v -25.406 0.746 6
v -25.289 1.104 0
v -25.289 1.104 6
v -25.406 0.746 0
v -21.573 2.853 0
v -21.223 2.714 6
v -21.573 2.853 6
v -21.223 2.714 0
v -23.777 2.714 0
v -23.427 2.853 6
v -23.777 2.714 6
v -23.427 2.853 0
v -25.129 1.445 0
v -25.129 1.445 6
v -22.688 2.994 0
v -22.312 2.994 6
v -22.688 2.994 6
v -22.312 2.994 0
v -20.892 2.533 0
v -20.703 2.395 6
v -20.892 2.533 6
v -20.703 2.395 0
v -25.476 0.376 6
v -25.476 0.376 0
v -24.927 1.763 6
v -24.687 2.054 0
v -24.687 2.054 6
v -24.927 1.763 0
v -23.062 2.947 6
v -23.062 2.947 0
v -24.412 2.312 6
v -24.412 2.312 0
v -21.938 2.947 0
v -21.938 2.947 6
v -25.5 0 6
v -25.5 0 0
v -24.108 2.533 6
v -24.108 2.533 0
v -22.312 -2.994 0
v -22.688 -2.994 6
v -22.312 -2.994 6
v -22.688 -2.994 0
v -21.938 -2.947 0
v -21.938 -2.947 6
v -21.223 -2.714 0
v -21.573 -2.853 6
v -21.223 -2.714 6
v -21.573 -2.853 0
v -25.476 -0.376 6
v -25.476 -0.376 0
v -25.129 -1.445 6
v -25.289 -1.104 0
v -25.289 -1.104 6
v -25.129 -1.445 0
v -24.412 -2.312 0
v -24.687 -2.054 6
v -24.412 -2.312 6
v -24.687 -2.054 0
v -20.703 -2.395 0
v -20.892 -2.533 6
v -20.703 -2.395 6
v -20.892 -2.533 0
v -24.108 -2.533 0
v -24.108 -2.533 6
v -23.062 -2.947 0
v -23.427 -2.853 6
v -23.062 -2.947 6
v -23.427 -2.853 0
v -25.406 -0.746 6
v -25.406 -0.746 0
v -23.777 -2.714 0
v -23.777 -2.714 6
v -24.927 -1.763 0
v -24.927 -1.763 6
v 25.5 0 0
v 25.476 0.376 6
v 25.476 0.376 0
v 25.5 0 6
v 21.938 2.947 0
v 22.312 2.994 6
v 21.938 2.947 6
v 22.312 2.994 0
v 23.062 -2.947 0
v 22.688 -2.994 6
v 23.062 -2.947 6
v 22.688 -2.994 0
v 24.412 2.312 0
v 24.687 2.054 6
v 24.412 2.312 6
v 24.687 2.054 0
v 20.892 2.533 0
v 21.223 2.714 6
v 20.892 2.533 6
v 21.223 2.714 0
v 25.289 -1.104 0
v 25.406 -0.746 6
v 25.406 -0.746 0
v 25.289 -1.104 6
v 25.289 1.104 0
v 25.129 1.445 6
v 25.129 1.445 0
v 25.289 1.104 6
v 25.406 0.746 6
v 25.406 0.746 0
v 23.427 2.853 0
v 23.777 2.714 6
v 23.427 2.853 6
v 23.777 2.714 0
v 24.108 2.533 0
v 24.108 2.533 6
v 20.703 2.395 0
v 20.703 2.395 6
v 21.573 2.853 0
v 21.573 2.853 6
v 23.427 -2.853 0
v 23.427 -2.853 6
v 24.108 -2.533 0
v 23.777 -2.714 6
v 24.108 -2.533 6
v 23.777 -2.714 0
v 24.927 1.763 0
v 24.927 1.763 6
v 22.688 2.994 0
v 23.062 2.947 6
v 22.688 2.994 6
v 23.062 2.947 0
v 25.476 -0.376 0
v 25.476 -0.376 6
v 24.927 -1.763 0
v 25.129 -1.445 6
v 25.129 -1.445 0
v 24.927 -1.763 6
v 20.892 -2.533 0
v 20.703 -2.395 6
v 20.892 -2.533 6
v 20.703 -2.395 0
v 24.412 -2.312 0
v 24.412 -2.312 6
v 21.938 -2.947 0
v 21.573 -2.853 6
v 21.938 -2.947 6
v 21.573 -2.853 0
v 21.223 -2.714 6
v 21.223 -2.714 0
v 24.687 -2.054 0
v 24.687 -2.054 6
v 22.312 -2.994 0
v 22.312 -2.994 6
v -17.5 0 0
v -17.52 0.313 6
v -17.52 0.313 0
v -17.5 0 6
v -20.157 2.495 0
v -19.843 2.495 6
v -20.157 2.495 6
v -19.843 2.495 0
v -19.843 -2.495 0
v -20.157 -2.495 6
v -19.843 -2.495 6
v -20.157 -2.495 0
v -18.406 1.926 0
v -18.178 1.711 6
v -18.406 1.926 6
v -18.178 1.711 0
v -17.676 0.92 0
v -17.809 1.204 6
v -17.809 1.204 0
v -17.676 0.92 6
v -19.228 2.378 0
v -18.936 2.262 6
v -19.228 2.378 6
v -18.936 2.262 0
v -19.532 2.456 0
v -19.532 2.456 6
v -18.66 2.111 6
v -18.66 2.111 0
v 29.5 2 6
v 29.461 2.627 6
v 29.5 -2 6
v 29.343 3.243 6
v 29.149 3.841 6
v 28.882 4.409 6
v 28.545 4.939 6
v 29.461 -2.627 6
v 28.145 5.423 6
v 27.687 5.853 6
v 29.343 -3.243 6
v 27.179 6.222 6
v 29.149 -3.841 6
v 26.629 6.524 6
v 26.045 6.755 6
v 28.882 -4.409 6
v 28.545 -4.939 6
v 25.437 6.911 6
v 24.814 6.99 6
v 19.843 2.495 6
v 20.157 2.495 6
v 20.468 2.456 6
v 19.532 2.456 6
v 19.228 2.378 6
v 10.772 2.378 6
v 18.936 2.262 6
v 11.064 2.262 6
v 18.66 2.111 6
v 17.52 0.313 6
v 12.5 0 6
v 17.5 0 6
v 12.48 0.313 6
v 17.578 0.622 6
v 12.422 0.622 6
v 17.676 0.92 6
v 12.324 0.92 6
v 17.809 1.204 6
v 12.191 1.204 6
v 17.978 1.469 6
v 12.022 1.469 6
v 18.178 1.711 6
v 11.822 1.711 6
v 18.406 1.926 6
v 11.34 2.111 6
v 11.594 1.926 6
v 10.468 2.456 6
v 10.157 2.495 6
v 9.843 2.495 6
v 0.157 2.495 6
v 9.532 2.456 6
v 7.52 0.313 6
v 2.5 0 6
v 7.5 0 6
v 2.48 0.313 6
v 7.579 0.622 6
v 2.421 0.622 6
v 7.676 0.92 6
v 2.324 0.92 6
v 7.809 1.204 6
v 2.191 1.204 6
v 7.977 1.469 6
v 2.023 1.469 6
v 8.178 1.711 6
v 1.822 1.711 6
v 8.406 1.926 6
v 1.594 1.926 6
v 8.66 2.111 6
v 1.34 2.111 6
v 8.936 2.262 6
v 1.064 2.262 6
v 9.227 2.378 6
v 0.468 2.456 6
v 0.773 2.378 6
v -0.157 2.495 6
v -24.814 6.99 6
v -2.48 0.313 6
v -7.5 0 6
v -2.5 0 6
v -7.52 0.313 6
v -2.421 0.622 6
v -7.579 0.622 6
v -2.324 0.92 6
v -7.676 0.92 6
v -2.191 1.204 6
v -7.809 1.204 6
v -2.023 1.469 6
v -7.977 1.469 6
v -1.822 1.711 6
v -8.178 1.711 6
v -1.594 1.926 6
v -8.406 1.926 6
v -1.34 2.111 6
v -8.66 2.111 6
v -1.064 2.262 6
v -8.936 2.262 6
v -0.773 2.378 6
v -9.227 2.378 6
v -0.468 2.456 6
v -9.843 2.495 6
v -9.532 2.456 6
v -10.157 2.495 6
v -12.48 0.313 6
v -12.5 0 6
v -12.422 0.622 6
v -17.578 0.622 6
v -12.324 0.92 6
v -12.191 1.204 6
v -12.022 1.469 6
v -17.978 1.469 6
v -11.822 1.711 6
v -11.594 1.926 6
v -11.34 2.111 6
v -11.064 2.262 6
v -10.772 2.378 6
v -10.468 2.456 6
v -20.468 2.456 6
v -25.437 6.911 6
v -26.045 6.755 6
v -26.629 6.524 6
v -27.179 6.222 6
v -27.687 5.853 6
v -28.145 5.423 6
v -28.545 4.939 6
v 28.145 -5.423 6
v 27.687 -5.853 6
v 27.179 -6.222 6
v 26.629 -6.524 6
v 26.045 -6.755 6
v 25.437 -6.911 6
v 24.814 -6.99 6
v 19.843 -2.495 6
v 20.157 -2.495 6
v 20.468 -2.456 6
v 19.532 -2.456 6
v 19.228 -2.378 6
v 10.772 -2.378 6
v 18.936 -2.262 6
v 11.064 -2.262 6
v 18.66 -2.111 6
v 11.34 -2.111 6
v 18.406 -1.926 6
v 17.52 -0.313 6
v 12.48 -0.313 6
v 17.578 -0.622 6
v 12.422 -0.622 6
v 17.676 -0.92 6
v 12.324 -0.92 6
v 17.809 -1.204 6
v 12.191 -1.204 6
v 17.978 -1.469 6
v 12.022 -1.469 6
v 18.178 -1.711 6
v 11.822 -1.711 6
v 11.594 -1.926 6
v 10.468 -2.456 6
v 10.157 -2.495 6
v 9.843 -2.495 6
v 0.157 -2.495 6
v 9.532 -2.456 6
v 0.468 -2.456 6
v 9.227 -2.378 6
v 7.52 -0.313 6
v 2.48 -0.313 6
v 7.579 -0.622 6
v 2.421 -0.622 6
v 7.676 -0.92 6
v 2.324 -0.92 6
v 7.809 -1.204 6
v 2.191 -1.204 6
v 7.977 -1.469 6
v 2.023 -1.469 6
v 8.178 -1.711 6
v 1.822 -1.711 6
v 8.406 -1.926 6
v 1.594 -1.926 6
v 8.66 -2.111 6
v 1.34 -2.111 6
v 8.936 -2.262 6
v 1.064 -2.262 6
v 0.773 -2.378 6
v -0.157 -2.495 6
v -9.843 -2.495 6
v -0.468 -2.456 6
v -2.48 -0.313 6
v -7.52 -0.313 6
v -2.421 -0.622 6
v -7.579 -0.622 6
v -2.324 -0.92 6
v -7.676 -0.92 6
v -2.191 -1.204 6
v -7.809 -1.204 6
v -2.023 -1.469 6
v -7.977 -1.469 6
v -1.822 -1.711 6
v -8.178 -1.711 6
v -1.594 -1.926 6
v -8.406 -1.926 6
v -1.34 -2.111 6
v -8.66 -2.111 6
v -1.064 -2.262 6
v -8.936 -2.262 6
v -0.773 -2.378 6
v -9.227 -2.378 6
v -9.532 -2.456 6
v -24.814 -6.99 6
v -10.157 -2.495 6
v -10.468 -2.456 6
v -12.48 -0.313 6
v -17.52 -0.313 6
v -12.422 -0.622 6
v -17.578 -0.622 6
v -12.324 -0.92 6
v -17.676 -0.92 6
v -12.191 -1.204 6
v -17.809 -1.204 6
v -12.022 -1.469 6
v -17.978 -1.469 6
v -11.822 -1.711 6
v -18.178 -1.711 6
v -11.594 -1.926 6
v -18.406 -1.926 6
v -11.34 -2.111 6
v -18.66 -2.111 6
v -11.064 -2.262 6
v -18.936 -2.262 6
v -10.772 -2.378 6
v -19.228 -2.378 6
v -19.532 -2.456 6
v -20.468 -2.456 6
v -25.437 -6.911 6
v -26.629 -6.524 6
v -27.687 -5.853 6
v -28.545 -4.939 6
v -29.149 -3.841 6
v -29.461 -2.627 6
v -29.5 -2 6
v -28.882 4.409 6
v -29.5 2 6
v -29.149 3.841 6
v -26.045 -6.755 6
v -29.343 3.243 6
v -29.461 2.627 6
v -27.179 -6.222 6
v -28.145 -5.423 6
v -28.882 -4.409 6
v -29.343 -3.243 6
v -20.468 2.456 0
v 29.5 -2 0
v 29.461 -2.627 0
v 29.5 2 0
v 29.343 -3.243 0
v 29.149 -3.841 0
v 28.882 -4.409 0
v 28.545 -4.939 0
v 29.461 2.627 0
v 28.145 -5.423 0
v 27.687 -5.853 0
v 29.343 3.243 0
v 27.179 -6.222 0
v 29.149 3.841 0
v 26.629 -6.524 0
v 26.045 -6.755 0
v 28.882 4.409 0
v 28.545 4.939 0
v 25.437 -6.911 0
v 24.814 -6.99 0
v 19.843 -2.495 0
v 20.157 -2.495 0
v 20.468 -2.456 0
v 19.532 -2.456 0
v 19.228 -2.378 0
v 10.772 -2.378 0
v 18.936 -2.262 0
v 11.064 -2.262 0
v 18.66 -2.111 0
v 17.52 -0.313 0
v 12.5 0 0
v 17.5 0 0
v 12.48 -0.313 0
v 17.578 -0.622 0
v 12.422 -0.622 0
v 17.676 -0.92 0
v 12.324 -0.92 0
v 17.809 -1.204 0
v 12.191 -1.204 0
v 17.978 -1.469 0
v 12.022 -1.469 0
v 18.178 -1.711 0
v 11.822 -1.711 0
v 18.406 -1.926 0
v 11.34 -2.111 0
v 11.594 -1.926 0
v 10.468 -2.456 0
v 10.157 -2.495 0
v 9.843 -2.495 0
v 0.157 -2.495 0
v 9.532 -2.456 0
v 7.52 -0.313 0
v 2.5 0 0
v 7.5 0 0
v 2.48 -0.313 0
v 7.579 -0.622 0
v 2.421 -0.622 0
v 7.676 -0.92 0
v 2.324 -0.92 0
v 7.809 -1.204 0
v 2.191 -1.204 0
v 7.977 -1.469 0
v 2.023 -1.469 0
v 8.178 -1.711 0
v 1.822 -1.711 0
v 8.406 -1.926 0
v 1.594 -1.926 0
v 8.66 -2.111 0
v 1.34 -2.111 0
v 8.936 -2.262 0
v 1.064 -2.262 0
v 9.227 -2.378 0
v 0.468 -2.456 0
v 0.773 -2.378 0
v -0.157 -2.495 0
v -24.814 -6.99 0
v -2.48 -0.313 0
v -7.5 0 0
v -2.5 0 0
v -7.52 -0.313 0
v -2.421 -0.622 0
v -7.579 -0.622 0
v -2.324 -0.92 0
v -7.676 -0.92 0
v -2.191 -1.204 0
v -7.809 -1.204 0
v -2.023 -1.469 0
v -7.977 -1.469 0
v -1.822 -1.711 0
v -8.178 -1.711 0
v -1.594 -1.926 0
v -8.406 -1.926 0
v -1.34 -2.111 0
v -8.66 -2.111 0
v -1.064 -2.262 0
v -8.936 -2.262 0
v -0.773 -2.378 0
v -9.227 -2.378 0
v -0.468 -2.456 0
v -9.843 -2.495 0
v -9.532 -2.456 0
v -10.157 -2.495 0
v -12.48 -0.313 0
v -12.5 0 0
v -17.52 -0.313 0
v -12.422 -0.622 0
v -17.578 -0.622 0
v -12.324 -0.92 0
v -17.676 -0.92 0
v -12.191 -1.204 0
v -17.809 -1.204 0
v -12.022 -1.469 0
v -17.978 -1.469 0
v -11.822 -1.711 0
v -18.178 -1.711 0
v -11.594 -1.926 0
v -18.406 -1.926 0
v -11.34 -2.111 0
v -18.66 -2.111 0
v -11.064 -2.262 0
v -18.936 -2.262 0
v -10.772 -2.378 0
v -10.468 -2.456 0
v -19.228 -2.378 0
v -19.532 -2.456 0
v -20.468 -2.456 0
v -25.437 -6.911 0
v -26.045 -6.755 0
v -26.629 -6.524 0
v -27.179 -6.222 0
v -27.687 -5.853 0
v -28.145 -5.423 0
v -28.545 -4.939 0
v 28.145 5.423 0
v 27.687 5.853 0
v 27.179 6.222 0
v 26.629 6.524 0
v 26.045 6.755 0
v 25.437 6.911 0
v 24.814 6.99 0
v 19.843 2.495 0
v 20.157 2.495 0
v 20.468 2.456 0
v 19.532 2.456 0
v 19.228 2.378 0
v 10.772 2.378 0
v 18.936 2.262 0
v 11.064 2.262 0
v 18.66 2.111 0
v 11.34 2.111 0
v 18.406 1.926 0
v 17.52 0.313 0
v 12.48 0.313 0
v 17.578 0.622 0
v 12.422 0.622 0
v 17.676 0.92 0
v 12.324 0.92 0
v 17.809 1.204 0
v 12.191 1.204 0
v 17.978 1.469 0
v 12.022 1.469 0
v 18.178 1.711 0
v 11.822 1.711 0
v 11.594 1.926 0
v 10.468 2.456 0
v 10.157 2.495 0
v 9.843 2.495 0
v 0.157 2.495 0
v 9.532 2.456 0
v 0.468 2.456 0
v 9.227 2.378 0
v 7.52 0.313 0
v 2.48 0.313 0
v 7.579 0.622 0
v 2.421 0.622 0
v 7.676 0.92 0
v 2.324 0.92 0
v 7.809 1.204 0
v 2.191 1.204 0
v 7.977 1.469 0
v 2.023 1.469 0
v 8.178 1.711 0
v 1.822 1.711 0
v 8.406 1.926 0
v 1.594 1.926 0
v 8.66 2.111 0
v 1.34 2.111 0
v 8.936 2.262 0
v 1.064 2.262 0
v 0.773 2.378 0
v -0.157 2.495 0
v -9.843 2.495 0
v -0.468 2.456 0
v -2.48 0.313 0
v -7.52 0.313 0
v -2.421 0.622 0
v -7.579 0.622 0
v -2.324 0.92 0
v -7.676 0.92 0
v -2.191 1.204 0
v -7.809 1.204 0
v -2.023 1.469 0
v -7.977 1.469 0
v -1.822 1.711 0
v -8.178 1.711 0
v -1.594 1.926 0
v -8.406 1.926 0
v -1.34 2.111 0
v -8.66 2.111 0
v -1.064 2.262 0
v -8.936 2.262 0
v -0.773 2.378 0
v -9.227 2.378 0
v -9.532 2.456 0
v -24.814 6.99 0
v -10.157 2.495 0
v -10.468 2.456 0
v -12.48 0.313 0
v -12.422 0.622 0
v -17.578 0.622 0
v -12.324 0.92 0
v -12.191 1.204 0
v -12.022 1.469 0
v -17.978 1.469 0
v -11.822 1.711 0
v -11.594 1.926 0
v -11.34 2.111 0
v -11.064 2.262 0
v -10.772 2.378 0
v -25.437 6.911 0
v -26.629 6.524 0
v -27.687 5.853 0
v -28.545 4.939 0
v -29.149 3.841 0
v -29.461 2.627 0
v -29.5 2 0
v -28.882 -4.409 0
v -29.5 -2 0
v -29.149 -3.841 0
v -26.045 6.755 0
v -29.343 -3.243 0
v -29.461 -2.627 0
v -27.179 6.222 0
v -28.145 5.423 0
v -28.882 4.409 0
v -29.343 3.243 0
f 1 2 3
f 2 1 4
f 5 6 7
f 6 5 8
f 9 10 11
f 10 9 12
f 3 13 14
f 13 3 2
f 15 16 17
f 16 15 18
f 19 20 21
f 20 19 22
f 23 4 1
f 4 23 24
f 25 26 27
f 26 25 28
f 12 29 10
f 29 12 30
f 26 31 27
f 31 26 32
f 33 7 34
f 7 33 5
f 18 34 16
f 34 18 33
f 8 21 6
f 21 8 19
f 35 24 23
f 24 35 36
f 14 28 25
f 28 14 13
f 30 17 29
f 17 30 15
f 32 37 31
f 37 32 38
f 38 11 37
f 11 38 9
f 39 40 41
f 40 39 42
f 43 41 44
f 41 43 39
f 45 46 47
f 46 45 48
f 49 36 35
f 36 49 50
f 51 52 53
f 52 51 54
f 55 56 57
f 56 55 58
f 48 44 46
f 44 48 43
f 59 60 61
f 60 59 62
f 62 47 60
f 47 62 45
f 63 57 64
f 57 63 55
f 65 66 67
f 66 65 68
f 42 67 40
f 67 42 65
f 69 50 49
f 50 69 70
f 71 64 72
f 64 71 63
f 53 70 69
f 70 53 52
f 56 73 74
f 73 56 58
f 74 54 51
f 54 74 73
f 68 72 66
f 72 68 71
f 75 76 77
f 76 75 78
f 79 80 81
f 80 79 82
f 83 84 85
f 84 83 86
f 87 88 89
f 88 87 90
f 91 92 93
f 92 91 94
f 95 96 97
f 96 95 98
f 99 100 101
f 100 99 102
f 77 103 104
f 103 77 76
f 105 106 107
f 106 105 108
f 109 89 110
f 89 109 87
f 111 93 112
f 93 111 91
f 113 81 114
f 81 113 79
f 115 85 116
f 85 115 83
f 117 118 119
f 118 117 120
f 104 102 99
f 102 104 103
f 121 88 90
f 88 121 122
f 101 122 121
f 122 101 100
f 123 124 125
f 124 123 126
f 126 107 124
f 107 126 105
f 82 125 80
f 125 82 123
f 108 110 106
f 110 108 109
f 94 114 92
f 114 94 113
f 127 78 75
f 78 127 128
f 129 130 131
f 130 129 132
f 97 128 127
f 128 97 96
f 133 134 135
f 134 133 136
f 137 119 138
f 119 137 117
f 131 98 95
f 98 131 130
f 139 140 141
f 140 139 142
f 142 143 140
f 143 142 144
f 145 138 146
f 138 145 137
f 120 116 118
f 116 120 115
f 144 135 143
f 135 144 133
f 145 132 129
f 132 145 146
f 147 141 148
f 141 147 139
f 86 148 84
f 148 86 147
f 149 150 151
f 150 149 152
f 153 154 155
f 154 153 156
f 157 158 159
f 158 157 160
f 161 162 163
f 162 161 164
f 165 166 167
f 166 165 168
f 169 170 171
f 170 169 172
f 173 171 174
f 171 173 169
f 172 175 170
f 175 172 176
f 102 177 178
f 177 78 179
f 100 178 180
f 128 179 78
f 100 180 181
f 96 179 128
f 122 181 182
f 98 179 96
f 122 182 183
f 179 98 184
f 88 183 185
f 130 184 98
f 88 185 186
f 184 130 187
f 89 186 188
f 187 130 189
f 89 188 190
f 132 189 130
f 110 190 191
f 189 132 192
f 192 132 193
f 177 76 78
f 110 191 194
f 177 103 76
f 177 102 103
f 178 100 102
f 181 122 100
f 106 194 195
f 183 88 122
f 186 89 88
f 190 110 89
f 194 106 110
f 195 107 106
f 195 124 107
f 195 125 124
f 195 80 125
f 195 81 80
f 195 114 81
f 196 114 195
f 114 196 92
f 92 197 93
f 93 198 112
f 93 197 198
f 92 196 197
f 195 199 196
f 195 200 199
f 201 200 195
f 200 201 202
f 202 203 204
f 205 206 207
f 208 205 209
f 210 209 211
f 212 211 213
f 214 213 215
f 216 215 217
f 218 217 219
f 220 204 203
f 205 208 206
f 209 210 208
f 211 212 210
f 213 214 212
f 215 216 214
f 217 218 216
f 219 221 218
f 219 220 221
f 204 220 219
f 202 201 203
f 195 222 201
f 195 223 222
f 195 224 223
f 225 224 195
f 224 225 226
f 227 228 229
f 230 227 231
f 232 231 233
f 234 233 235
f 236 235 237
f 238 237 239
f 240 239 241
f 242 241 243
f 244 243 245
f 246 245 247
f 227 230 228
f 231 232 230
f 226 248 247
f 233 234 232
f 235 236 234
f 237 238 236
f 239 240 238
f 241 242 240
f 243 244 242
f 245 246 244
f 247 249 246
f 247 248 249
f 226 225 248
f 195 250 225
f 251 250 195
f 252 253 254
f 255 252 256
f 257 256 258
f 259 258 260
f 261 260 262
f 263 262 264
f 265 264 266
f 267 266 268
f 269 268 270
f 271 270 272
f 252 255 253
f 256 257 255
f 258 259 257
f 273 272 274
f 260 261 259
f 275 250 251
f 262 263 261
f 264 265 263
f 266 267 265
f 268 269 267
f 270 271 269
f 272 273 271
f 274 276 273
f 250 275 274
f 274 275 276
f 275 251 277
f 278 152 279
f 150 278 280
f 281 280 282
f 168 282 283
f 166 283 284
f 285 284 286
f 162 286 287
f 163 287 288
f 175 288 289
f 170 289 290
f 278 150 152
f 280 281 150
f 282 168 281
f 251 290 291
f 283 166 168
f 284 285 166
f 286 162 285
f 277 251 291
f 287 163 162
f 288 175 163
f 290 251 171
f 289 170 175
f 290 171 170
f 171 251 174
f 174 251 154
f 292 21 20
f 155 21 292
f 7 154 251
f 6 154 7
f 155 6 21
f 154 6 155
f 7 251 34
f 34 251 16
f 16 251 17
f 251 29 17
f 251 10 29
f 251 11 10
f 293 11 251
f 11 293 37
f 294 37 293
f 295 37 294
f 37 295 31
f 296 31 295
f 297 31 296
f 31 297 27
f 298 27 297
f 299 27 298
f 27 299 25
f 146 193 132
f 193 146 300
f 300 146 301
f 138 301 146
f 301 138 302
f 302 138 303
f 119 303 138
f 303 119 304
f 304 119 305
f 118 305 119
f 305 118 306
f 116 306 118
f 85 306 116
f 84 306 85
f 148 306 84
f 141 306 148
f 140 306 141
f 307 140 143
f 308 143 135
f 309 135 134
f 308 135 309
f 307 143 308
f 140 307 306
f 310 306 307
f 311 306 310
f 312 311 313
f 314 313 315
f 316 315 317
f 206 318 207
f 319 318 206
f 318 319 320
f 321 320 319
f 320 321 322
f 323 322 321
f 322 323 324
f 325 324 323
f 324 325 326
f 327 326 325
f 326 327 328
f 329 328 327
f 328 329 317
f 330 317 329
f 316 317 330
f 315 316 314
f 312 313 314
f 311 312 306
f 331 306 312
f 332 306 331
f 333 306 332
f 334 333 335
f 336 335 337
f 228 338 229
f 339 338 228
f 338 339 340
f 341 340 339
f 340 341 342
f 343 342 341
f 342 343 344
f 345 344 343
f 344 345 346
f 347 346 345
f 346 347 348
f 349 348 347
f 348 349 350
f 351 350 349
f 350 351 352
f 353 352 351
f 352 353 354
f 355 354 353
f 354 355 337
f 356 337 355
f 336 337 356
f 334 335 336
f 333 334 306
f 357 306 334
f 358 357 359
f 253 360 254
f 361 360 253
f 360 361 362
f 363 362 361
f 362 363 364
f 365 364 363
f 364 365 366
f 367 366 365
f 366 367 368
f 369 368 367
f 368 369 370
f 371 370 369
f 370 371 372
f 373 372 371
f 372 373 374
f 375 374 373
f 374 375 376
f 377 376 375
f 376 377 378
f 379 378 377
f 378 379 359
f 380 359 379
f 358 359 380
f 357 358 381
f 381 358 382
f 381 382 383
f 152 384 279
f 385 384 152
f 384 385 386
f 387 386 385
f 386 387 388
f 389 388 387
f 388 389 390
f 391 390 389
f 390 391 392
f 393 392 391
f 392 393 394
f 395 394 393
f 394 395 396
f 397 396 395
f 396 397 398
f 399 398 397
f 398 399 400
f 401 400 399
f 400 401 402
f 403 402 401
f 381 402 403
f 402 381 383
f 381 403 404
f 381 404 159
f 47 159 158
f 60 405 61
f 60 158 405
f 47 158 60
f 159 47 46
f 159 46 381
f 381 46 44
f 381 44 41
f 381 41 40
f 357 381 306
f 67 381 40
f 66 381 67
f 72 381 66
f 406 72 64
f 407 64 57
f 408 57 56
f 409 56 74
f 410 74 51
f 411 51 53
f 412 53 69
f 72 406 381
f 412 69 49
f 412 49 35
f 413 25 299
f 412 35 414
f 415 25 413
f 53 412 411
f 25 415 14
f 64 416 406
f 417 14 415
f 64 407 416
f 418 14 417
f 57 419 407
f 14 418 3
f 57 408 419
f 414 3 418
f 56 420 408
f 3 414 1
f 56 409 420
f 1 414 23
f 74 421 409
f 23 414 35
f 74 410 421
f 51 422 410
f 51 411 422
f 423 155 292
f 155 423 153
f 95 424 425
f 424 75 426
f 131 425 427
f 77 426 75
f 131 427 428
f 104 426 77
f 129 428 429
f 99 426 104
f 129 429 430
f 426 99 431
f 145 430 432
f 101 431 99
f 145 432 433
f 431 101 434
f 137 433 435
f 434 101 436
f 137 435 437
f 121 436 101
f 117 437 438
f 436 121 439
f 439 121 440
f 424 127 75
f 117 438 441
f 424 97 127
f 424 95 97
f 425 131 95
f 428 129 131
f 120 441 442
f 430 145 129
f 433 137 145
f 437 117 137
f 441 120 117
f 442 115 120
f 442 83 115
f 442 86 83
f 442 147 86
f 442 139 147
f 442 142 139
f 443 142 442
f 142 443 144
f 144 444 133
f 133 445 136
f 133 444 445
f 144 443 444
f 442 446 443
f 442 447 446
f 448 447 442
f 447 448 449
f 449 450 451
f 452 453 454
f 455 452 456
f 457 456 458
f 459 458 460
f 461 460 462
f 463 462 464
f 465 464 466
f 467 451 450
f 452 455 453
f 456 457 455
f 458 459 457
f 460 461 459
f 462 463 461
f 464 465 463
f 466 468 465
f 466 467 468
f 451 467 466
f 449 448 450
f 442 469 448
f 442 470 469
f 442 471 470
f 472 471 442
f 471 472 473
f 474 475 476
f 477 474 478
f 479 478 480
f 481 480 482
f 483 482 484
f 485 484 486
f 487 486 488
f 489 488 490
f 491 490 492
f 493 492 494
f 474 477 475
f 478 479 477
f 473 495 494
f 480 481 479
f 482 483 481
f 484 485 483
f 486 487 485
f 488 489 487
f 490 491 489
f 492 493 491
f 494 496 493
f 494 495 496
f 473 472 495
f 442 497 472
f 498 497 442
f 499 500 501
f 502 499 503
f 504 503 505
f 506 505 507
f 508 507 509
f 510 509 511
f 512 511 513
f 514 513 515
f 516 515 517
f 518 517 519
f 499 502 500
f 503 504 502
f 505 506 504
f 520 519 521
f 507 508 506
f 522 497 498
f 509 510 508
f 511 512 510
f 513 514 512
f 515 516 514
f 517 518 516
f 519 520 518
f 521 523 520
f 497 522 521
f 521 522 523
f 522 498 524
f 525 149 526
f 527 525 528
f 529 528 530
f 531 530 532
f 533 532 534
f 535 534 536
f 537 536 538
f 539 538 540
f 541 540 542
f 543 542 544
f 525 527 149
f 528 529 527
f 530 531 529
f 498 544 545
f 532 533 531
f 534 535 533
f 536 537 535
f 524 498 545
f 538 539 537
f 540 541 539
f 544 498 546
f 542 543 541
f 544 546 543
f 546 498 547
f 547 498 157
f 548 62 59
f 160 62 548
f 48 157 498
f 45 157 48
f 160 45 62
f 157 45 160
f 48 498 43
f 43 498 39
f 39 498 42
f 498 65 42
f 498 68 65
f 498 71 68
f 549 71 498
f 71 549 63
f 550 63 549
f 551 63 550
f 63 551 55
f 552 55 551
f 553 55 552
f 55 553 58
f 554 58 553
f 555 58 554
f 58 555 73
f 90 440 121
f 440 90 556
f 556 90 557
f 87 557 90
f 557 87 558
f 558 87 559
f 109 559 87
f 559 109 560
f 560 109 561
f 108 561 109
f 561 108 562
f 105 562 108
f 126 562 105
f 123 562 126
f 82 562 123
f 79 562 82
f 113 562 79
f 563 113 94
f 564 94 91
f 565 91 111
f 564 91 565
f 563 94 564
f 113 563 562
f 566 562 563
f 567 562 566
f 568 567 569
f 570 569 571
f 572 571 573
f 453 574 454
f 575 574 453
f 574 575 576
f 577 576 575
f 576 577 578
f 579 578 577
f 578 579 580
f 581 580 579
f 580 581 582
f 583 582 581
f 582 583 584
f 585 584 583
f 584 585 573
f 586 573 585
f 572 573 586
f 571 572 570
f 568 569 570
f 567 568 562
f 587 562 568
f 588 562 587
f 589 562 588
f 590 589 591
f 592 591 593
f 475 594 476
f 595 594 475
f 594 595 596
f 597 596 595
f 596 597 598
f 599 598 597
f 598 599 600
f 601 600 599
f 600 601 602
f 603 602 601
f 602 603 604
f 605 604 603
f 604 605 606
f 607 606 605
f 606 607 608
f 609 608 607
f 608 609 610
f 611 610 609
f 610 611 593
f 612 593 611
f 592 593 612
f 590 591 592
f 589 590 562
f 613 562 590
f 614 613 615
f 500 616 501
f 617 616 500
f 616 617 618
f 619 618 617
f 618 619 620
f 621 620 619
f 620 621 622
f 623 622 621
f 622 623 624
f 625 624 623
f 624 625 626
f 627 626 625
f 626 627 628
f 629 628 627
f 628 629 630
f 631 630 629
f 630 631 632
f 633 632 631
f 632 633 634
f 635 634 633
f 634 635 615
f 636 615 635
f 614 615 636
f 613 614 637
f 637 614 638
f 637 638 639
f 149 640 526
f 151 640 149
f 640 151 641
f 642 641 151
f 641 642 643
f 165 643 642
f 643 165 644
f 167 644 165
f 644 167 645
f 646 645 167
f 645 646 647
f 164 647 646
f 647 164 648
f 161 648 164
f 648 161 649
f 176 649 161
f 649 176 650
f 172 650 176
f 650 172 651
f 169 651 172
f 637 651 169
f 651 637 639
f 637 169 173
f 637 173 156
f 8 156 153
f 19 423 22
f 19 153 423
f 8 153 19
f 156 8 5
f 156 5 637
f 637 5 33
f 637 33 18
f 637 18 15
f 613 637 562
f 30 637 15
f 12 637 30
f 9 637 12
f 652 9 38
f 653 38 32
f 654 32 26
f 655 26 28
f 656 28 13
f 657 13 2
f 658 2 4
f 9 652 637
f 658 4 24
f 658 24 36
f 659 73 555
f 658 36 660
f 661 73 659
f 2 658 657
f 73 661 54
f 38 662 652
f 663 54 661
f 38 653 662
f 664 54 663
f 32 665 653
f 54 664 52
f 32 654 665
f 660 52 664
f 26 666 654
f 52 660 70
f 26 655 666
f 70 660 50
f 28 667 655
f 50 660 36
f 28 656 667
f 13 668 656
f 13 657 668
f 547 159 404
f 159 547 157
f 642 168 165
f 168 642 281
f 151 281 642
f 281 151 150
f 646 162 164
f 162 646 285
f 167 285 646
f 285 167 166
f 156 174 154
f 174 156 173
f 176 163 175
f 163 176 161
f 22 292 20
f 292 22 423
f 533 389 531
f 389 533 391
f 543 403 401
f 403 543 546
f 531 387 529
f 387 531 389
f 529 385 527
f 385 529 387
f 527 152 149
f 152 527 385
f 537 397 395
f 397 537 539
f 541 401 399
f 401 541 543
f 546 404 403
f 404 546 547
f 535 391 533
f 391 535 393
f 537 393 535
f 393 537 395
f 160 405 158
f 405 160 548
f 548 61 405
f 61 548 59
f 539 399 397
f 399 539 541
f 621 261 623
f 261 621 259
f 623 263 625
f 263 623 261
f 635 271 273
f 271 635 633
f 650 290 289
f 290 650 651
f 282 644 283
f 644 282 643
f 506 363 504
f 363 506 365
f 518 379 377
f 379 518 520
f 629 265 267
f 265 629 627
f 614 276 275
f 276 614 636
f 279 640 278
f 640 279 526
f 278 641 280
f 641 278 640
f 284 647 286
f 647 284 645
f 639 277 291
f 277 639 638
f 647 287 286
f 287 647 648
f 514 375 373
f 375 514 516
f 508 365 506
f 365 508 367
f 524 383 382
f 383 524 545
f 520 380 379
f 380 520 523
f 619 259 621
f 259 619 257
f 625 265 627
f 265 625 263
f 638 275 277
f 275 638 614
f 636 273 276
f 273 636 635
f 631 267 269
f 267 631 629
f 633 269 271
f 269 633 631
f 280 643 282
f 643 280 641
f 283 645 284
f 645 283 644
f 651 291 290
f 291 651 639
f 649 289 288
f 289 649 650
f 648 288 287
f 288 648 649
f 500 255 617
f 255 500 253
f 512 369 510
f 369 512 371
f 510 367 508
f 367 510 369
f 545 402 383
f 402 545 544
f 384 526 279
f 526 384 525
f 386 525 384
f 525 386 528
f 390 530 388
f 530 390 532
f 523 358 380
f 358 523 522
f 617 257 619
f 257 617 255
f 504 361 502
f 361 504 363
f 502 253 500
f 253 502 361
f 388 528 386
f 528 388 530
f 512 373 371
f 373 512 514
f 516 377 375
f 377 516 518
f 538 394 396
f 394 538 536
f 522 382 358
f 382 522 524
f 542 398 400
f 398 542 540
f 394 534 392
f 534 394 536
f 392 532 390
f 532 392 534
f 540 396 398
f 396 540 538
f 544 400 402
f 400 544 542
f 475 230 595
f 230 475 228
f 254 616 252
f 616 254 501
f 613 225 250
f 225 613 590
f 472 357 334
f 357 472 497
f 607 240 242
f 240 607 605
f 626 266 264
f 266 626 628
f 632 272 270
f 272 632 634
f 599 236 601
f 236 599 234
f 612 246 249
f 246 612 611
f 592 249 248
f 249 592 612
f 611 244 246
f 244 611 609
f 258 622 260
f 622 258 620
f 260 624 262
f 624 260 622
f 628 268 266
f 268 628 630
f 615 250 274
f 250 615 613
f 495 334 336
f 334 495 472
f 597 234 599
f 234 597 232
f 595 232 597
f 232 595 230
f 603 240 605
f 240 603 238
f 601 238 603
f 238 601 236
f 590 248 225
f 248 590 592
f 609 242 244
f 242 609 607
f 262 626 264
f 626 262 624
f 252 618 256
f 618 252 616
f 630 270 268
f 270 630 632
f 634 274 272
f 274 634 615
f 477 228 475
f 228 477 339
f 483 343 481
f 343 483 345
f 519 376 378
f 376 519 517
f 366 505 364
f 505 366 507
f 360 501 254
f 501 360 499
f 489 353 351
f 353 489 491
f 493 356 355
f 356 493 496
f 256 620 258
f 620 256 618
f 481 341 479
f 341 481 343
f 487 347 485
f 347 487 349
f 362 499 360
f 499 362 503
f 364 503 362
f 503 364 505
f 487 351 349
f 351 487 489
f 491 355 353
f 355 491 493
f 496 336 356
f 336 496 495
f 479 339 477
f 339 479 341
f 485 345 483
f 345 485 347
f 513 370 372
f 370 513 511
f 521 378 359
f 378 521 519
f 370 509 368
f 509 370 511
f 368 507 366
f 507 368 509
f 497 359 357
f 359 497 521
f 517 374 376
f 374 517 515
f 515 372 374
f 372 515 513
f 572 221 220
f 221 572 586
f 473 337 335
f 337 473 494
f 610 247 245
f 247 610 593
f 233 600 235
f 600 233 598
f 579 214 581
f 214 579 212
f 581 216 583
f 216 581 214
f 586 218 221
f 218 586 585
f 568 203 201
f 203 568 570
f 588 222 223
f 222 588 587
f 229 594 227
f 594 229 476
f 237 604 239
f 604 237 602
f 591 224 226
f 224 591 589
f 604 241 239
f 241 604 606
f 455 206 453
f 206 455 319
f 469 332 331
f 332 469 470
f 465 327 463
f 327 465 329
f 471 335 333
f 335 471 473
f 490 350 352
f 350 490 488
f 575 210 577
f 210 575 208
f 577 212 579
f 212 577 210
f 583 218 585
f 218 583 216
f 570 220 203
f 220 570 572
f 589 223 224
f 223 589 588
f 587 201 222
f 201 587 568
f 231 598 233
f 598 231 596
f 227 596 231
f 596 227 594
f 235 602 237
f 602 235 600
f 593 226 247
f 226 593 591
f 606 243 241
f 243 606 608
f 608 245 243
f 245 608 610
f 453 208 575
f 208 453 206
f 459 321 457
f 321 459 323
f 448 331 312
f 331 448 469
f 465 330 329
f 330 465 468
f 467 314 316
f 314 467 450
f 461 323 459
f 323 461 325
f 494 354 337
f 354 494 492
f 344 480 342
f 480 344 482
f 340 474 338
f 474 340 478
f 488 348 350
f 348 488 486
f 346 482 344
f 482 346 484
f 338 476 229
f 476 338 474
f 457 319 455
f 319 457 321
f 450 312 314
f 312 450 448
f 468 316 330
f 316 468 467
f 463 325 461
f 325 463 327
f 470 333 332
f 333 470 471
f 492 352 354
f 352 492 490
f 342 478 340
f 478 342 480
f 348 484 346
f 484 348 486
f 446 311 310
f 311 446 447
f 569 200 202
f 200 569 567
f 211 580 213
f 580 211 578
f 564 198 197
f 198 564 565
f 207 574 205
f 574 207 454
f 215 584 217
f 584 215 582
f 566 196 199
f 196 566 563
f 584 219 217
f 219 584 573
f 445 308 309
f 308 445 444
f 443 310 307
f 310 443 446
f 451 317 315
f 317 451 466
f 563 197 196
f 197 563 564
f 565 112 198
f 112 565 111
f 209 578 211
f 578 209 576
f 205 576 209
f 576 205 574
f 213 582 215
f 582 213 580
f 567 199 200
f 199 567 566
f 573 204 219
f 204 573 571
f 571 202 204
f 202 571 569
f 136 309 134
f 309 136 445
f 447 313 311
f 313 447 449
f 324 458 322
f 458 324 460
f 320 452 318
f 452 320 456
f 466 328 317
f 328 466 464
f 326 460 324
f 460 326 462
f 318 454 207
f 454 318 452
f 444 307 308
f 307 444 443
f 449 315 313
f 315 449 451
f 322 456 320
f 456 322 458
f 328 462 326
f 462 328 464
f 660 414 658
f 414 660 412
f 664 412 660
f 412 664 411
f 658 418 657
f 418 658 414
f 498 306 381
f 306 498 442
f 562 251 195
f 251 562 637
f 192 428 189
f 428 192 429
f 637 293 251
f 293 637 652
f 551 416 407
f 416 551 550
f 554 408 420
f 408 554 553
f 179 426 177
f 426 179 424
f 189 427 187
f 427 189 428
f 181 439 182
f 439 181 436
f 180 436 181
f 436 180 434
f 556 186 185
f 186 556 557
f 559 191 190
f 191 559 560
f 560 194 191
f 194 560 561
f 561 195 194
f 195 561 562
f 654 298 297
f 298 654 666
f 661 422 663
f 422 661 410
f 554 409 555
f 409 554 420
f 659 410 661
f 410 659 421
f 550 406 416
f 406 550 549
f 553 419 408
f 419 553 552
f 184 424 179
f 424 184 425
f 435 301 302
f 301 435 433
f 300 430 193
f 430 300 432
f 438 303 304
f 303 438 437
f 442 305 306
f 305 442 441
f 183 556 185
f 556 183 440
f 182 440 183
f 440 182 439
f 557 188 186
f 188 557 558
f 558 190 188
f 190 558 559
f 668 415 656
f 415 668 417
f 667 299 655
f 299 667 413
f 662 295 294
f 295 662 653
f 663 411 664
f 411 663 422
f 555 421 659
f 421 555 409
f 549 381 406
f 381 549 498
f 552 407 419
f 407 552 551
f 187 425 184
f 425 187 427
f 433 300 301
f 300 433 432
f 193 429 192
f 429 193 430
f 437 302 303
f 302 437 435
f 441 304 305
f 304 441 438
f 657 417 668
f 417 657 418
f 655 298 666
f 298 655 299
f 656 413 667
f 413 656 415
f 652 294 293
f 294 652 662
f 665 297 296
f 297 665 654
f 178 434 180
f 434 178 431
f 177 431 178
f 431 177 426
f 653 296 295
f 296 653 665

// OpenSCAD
$fn = 50;


difference() {
	union() {
		hull() {
			translate(v = [-24.5000000000, 2.0000000000, 0]) {
				cylinder(h = 6, r = 5);
			}
			translate(v = [24.5000000000, 2.0000000000, 0]) {
				cylinder(h = 6, r = 5);
			}
			translate(v = [-24.5000000000, -2.0000000000, 0]) {
				cylinder(h = 6, r = 5);
			}
			translate(v = [24.5000000000, -2.0000000000, 0]) {
				cylinder(h = 6, r = 5);
			}
		}
	}
	union() {
		#translate(v = [-22.5000000000, 0.0000000000, -100.0000000000]) {
			cylinder(h = 200, r = 3.0000000000);
		}
		#translate(v = [-22.5000000000, 0.0000000000, -100.0000000000]) {
			cylinder(h = 200, r = 3.0000000000);
		}
		#translate(v = [22.5000000000, 0.0000000000, -100.0000000000]) {
			cylinder(h = 200, r = 3.0000000000);
		}
		#translate(v = [22.5000000000, 0.0000000000, -100.0000000000]) {
			cylinder(h = 200, r = 3.0000000000);
		}
		#translate(v = [-20.0000000000, 0, 0]) {
			cylinder(h = 6, r = 2.5000000000);
		}
		#translate(v = [-10.0000000000, 0, 0]) {
			cylinder(h = 6, r = 2.5000000000);
		}
		#cylinder(h = 6, r = 2.5000000000);
		#translate(v = [10.0000000000, 0, 0]) {
			cylinder(h = 6, r = 2.5000000000);
		}
		#translate(v = [20.0000000000, 0, 0]) {
			cylinder(h = 6, r = 2.5000000000);
		}
	}
}
